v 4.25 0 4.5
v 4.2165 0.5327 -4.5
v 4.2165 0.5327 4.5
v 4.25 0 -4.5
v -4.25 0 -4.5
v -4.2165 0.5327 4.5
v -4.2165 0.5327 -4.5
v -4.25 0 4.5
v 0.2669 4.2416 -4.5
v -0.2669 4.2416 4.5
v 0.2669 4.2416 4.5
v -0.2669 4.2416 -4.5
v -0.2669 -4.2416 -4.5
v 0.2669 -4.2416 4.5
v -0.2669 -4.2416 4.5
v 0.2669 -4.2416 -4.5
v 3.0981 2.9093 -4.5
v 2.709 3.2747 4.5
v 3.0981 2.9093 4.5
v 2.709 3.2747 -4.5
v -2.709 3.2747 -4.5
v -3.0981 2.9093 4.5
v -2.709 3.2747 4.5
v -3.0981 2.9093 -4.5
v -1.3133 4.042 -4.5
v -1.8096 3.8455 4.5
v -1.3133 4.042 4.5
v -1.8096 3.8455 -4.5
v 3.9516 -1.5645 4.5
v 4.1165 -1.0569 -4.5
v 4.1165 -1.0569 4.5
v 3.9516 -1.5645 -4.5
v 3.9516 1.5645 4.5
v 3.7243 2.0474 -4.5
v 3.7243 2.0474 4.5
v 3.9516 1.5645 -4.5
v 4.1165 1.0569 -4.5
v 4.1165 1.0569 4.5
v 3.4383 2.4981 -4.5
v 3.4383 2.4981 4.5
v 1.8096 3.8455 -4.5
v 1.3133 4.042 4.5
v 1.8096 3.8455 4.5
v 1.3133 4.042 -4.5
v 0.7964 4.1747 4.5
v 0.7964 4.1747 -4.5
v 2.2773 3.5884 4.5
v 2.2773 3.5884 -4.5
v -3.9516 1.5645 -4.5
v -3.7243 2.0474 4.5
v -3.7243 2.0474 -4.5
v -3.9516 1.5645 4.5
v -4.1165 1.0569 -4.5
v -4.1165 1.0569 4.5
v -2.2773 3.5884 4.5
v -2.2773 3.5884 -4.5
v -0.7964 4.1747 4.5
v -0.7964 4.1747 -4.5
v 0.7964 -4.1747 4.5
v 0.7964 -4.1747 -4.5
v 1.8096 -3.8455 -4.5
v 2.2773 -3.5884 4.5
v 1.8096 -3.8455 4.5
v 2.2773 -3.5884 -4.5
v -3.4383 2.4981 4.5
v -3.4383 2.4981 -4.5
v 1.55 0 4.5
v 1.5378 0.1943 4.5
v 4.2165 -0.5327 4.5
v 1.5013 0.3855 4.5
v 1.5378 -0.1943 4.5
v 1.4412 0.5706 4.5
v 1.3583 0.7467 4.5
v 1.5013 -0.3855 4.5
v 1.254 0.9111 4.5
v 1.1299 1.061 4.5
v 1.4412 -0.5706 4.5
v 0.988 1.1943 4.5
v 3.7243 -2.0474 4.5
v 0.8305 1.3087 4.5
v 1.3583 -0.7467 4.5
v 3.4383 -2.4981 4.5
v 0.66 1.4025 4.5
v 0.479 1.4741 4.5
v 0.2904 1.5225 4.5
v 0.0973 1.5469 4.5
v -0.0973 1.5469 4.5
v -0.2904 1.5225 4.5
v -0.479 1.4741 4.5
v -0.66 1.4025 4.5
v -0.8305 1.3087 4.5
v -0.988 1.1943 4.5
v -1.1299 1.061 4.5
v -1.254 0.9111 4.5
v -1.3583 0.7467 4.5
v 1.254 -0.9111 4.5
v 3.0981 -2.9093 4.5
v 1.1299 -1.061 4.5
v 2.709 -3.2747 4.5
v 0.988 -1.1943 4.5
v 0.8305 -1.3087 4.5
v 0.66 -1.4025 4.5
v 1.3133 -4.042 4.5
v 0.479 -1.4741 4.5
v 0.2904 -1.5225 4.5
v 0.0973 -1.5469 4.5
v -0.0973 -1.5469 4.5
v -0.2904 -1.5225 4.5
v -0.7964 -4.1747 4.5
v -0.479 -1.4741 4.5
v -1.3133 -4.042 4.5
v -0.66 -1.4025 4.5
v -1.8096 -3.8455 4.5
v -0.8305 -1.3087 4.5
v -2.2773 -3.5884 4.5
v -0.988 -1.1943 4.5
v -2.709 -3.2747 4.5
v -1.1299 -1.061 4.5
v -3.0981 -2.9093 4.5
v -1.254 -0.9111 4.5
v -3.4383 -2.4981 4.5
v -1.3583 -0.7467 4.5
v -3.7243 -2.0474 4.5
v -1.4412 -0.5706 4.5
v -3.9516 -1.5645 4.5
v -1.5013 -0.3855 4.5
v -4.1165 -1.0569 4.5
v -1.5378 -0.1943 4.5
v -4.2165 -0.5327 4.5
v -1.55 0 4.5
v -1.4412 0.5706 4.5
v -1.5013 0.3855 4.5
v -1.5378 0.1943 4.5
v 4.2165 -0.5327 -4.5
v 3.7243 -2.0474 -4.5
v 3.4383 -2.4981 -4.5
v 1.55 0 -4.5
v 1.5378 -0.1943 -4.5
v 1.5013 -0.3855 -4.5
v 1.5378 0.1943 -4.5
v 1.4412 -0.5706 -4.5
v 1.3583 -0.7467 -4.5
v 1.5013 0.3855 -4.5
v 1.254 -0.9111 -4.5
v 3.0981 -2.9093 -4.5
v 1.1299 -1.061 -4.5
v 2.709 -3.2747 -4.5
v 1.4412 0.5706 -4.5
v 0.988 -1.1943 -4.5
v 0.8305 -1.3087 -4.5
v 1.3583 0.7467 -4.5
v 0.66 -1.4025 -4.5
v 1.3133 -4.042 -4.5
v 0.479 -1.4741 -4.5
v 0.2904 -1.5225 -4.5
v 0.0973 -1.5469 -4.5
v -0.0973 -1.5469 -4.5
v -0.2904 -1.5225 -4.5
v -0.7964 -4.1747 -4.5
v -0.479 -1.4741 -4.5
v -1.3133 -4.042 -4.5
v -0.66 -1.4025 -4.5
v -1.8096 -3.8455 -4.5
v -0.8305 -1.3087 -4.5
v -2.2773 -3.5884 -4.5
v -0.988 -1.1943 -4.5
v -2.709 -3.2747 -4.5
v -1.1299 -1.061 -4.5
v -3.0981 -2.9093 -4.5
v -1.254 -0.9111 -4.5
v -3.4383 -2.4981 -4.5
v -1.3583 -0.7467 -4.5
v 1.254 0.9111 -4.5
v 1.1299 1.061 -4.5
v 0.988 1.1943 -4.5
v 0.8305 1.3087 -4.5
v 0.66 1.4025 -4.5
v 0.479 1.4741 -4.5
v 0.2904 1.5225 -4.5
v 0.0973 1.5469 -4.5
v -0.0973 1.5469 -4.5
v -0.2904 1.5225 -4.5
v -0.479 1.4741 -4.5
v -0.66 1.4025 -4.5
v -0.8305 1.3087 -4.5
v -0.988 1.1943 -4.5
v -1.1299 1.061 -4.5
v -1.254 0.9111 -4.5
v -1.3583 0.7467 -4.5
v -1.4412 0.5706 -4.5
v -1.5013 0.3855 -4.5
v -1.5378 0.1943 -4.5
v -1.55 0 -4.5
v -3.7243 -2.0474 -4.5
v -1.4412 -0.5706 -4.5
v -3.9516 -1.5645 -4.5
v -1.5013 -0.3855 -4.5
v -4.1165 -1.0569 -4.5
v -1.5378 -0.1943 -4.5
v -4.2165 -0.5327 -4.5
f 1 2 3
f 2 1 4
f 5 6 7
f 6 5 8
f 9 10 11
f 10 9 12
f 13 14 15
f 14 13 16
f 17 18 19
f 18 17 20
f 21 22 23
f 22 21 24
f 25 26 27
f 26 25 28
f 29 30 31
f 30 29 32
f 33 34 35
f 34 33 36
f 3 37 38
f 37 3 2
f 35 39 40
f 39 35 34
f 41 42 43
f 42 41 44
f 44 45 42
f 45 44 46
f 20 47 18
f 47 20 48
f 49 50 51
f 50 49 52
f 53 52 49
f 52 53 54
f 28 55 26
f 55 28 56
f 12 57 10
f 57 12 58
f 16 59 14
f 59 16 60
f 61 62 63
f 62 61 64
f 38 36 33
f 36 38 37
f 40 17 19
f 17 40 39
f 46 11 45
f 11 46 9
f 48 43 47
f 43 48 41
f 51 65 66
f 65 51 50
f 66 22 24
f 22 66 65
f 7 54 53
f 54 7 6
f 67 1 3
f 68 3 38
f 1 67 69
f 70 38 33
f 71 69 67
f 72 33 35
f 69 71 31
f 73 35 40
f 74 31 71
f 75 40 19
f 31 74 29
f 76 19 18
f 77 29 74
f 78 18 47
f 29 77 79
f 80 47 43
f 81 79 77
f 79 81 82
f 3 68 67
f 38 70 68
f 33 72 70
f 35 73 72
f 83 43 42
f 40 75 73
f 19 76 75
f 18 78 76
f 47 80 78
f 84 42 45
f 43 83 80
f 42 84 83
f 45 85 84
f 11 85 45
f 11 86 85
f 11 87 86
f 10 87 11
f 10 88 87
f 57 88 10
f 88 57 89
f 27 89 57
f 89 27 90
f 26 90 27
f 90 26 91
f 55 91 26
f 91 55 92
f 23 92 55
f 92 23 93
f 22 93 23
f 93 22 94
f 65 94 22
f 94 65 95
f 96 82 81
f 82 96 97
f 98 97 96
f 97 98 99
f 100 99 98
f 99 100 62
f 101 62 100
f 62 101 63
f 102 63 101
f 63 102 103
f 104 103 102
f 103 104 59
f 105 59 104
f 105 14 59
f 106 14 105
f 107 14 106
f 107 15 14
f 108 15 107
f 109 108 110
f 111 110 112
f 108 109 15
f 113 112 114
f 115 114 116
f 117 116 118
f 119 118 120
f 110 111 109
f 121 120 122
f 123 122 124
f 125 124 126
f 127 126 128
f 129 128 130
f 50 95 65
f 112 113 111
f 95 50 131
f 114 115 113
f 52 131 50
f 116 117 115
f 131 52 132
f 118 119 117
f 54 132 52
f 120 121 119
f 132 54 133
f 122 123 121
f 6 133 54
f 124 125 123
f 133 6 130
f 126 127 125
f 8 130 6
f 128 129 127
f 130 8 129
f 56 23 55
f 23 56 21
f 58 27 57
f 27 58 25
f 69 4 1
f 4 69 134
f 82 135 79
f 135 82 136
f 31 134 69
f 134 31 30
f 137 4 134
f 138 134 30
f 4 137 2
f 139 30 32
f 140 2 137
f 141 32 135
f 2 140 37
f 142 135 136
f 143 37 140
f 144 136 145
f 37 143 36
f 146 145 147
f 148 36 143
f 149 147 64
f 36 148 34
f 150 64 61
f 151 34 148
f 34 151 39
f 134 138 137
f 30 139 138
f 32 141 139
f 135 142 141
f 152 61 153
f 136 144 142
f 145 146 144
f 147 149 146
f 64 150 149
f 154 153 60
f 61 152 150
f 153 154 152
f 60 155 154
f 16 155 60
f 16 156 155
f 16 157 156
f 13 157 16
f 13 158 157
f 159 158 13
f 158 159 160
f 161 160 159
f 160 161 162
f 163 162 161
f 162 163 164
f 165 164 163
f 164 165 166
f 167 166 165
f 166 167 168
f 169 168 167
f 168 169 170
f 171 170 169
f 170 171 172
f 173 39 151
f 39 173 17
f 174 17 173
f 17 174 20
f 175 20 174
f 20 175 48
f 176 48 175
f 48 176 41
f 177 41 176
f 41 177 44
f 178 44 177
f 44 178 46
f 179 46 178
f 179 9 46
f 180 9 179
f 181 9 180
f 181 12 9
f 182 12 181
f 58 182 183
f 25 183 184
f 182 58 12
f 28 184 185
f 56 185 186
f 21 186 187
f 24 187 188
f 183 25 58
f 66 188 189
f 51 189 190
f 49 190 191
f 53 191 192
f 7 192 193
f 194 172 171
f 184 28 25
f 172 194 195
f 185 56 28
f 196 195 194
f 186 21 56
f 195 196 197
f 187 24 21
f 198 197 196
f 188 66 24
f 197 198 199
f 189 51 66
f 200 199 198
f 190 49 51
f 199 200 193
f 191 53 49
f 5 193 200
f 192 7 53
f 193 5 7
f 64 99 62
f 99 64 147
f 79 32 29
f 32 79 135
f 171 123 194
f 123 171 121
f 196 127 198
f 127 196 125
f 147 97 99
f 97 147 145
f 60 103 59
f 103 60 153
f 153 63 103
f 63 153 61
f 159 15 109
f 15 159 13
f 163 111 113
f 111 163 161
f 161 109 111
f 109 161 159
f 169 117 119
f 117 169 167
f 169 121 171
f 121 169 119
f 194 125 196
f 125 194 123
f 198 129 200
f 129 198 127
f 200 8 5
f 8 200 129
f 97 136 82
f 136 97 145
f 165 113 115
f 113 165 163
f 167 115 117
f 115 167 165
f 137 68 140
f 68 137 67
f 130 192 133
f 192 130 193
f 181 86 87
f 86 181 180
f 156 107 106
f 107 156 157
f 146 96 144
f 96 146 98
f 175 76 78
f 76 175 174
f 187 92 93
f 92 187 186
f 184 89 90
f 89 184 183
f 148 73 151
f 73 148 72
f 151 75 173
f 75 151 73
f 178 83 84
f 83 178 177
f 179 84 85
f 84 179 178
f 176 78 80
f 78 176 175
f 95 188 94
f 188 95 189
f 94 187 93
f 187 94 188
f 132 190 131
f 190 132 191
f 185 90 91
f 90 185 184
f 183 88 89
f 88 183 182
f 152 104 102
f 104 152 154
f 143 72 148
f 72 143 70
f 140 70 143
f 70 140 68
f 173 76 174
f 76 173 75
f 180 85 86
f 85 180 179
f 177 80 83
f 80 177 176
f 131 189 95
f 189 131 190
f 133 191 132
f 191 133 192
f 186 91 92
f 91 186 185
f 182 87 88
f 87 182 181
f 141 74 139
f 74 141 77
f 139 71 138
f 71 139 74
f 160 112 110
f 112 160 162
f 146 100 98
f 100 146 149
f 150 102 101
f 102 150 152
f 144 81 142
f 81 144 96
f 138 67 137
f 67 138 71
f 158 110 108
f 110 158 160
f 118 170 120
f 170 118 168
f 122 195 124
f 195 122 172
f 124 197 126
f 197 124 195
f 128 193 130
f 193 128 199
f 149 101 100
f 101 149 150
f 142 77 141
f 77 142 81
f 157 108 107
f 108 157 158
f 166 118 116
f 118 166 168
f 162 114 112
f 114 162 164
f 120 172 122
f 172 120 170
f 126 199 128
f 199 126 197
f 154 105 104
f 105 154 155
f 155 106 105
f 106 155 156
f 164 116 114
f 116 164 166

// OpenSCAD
$fn = 50;


difference() {
	union() {
		translate(v = [0, 0, -4.5000000000]) {
			cylinder(h = 9, r = 4.2500000000);
		}
	}
	union() {
		translate(v = [0, 0, -100.0000000000]) {
			cylinder(h = 200, r = 1.5500000000);
		}
	}
}
